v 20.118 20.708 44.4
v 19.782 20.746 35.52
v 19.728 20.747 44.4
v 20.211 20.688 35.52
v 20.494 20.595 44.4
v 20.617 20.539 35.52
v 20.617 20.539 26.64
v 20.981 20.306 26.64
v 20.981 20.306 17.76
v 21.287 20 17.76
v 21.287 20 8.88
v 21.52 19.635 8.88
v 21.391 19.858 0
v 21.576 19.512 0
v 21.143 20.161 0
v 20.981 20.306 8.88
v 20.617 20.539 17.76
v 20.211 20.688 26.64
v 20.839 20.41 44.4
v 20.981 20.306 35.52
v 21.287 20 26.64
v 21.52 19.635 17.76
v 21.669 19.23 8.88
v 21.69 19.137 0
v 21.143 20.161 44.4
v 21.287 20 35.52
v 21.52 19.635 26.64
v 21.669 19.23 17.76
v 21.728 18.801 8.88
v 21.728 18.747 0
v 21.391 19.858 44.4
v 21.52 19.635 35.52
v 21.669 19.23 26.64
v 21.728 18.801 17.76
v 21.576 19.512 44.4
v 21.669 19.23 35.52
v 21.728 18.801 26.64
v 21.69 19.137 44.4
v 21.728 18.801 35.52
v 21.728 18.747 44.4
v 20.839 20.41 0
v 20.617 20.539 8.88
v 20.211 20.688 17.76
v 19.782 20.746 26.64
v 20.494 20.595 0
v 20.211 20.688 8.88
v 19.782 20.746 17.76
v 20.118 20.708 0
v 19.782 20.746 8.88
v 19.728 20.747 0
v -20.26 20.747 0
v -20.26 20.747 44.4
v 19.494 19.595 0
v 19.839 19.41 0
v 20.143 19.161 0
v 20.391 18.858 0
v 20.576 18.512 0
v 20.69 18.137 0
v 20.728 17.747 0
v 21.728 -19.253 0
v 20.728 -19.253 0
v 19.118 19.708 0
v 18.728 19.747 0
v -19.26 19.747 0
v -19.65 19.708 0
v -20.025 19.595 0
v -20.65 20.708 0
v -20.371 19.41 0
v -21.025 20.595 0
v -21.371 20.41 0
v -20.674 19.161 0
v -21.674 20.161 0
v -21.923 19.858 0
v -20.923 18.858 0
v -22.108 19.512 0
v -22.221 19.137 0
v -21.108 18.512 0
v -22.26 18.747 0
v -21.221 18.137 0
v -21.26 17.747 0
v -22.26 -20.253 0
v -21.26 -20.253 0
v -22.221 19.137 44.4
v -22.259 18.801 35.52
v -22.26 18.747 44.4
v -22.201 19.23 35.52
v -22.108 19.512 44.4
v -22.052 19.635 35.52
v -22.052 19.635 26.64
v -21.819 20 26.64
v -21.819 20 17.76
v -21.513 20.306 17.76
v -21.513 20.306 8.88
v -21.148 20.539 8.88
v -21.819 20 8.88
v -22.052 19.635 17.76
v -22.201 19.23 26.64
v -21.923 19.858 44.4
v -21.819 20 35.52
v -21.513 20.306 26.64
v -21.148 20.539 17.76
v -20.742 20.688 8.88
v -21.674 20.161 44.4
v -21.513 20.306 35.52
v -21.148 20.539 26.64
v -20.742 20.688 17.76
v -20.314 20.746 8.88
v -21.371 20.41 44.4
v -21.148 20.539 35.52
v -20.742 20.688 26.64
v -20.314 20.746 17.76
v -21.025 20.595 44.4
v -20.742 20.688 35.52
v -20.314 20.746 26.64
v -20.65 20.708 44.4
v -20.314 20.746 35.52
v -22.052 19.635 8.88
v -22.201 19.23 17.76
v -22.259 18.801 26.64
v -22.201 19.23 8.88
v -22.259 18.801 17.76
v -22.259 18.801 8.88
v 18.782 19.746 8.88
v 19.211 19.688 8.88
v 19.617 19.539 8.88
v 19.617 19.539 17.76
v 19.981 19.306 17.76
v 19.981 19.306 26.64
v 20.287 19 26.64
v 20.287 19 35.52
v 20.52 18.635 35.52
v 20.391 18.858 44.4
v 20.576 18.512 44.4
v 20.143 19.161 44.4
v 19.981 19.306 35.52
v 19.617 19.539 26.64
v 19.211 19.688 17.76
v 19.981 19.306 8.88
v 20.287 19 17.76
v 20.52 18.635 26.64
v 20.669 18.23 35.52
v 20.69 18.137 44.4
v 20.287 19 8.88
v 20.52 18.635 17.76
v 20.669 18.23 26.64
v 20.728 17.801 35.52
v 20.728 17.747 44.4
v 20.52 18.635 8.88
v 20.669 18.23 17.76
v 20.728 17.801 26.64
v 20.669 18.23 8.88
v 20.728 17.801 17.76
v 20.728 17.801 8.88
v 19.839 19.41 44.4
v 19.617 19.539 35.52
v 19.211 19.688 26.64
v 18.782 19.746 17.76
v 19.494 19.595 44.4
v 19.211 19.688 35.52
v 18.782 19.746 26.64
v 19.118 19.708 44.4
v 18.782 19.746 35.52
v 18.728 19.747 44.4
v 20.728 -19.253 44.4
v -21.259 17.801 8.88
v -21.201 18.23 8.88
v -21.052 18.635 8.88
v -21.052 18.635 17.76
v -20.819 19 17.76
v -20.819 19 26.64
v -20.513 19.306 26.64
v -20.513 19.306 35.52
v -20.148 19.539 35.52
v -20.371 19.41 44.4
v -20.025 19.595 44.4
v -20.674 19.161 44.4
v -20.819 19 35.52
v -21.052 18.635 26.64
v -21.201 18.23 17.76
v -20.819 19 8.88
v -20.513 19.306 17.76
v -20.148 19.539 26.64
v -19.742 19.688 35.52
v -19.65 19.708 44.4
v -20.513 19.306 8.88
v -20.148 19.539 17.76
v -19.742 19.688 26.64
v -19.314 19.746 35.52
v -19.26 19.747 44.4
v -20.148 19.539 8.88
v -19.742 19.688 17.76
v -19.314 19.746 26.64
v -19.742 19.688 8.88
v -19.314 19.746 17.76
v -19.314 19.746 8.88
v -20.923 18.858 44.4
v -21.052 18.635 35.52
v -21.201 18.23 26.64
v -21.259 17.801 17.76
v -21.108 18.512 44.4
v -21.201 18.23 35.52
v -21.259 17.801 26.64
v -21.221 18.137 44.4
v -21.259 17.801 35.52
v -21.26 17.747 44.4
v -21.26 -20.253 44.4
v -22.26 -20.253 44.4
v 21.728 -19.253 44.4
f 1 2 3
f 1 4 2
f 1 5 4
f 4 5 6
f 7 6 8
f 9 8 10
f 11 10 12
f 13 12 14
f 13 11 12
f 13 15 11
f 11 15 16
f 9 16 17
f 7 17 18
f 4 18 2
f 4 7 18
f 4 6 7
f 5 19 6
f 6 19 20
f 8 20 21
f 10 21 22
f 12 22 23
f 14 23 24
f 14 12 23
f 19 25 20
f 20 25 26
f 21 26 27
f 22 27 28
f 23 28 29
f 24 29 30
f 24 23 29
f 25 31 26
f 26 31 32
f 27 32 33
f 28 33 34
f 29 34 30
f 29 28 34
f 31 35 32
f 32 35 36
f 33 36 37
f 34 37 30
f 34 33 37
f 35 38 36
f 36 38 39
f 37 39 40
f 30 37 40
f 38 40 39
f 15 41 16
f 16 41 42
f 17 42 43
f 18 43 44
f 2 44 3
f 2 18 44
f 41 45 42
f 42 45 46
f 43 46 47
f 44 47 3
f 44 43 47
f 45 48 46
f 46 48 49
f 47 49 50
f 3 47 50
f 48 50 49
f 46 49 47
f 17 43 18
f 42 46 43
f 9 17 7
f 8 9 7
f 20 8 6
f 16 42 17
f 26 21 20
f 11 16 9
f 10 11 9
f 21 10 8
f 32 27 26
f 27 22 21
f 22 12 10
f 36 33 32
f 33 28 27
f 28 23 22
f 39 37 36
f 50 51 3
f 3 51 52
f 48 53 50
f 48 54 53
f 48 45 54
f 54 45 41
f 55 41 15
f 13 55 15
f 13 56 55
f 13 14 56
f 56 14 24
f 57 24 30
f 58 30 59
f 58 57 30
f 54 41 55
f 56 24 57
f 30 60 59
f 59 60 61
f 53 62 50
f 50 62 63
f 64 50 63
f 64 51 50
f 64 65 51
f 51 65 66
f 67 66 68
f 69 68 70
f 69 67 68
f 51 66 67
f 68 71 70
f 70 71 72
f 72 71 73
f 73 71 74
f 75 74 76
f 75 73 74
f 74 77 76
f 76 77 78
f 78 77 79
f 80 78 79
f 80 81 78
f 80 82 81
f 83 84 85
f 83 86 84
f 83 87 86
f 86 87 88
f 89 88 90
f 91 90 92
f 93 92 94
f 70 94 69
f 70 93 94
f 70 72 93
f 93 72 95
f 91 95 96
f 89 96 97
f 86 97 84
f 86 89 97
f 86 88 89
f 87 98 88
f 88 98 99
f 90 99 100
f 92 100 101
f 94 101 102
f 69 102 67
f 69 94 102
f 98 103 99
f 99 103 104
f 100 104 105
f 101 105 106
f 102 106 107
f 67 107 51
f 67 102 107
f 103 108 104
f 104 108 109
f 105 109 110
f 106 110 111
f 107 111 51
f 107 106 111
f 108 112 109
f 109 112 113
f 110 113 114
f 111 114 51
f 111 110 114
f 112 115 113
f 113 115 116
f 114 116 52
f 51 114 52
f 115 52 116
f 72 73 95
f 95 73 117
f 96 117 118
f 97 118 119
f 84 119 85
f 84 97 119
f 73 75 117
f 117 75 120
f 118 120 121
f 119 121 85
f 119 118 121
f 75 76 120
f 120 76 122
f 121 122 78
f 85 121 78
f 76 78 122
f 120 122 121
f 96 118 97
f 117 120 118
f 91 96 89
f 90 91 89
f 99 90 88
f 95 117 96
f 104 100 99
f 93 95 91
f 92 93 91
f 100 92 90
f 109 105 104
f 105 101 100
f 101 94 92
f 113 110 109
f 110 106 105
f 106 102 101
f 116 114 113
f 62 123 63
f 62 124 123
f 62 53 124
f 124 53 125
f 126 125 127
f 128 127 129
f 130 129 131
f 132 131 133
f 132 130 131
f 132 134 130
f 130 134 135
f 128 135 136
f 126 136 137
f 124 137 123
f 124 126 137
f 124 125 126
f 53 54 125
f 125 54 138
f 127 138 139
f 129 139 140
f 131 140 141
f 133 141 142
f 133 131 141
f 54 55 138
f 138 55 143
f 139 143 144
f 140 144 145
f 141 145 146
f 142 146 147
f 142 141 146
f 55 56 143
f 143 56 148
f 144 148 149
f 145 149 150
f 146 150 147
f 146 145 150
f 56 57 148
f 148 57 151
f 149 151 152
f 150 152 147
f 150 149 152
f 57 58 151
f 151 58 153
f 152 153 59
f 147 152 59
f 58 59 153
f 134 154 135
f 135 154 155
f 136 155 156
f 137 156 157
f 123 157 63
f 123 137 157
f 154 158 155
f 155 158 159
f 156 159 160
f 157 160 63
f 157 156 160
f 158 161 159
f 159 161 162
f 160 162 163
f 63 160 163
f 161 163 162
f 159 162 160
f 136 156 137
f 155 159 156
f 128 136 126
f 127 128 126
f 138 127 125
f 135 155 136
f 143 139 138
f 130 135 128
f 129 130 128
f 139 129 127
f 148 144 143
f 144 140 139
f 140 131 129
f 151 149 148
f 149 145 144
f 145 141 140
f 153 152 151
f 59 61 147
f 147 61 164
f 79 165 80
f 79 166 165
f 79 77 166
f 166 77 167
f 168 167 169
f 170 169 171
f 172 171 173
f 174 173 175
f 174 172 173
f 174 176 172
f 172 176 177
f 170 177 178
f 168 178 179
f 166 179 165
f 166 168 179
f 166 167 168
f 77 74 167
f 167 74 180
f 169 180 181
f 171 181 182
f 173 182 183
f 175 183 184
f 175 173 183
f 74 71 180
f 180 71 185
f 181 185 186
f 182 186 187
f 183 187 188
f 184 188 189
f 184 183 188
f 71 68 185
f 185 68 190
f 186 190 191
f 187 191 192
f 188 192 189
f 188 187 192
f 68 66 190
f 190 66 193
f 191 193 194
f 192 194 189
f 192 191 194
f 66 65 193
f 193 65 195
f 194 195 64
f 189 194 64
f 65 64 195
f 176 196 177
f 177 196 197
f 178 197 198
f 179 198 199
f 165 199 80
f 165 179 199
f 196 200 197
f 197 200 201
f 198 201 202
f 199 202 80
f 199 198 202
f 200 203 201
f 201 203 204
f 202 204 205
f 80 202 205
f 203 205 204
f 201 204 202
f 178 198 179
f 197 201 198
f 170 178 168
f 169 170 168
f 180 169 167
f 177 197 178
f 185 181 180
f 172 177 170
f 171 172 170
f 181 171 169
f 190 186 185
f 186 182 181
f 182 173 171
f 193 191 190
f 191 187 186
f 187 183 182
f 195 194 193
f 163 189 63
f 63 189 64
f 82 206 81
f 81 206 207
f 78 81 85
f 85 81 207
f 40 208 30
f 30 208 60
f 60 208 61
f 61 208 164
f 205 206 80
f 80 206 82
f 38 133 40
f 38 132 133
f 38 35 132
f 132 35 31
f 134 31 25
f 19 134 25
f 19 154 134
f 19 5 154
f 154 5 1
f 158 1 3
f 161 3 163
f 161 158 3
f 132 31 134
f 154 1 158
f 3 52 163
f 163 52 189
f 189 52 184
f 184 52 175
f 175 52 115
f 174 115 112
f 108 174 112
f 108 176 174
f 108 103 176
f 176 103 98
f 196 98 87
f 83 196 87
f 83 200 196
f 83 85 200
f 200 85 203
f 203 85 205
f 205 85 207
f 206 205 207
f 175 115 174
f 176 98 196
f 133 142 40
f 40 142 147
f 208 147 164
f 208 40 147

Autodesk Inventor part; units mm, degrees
ref_plane "YZ Plane" through (0, 0, 0) normal (1, 0, 0) x (0, 1, 0)
ref_plane "XZ Plane" through (0, 0, 0) normal (0, 1, 0) x (-1, 0, 0)
ref_plane "XY Plane" through (0, 0, 0) normal (0, 0, 1) x (1, 0, 0)
sketch "cover" plane through (0, 0, 0) normal (0, 0, 1) x (1, 0, 0)
  line L0 (20.7283, -19.2532) -> (20.7283, 19.7468)
  line L1 (20.7283, 19.7468) -> (-21.2598, 19.7468)
  line L2 (-21.2598, 19.7468) -> (-21.2598, -20.2532)
  line L3 (-21.2598, -20.2532) -> (20.7283, 19.7468) construction
  line L4 (20.7283, -19.2532) -> (-21.2598, 19.7468) construction
  line L5 (21.7283, -19.2532) -> (21.7283, 20.7468)
  line L6 (21.7283, 20.7468) -> (-22.2598, 20.7468)
  line L7 (-22.2598, 20.7468) -> (-22.2598, 19.7468)
  line L8 (-22.2598, 19.7468) -> (-22.2598, -20.2532)
  line L9 (-21.2598, -20.2532) -> (-22.2598, -20.2532)
  line L10 (20.7283, -19.2532) -> (21.7283, -19.2532)
  point P0 (0, 0)
  dimension "d56" = 42
  dimension "d57" = 40
  dimension "d92" = 1
  dimension "d95" = 1
  dimension "d100" = 1
extrude "Extrusion8" add sketch "cover" along normal blind 44.4
fillet "Fillet5" radius 2 1 edges at (-21.2598, 19.7468, 22.2)
fillet "Fillet6" radius 2 1 edges at (20.7283, 19.7468, 22.2)
fillet "Fillet7" radius 2 1 edges at (-22.2598, 20.7468, 22.2)
fillet "Fillet8" radius 2 1 edges at (21.7283, 20.7468, 22.2)
equation "\"d56\" = wallw"
equation "\"d57\" = wallh - base_slots_depth"
equation "\"d92\" = 0.5 * baseextra"
equation "\"d95\" = d92"
equation "\"d100\" = d92"
equation "\"d93\" = wall1_thick + gap1 + wall2_thick"
equation "\"d96\" = cornerrad"
equation "\"d97\" = cornerrad"
equation "\"d98\" = cornerrad"
equation "\"d99\" = cornerrad"
equation "\"printer3dtolerance\" = 0.12"
equation "\"wallw\" = 42"
equation "\"wallh\" = 44"
equation "\"cornerrad\" = 2"
equation "\"baseextra\" = 2"
equation "\"wall1_thick\" = 8"
equation "\"wall2_thick\" = 6.4"
equation "\"wall3_thick\" = 4"
equation "\"wall1slot\" = 8.12"
equation "\"wall2slot\" = 6.52"
equation "\"wall3slot\" = 4.12"
equation "\"gap1\" = 30"
equation "\"gap2\" = 28"
equation "\"baseh\" = 79.12"
equation "\"basew\" = 44"
equation "\"base_thick\" = 6"
equation "\"base_slots_depth\" = 4"
equation "\"d26\" = 8.12"
equation "\"d27\" = 42"
equation "\"d28\" = 44"
equation "\"d29\" = 28"
equation "\"d31\" = 4.12"
equation "\"d32\" = 6.52"
equation "\"d33\" = 79.12"
equation "\"d39\" = 8.12"
equation "\"d40\" = 42"
equation "\"d41\" = 44"
equation "\"d48\" = 8.12"
equation "\"d49\" = 42"
equation "\"d50\" = 8.12"
equation "\"d51\" = 42"
equation "\"d52\" = 44"
equation "\"d53\" = 44"
equation "\"d71\" = 8.12"
equation "\"d72\" = 42"
equation "\"d73\" = 2"
equation "\"d74\" = 44"
equation "\"distancefrombottom\" = 34"
equation "\"servosmallcircledia\" = 5.92"
equation "\"servo9gw\" = 22.8"
equation "\"servomountsquare\" = 6"
equation "\"servopolygonl\" = 5.92"
equation "\"servopolygonr\" = 6.12"
equation "\"distancefromleft\" = 26"
equation "\"servobigcircledia\" = 11.62"
equation "\"servomounth\" = 4"
equation "\"wall3slotd\" = 2"
equation "\"wall3slotw\" = 36"
equation "\"adapterh\" = 16"
equation "\"adapterw\" = 32"
equation "\"wall3slotd_1\" = 2"
properties part number "back-cover" material "Wood (Oak)"
